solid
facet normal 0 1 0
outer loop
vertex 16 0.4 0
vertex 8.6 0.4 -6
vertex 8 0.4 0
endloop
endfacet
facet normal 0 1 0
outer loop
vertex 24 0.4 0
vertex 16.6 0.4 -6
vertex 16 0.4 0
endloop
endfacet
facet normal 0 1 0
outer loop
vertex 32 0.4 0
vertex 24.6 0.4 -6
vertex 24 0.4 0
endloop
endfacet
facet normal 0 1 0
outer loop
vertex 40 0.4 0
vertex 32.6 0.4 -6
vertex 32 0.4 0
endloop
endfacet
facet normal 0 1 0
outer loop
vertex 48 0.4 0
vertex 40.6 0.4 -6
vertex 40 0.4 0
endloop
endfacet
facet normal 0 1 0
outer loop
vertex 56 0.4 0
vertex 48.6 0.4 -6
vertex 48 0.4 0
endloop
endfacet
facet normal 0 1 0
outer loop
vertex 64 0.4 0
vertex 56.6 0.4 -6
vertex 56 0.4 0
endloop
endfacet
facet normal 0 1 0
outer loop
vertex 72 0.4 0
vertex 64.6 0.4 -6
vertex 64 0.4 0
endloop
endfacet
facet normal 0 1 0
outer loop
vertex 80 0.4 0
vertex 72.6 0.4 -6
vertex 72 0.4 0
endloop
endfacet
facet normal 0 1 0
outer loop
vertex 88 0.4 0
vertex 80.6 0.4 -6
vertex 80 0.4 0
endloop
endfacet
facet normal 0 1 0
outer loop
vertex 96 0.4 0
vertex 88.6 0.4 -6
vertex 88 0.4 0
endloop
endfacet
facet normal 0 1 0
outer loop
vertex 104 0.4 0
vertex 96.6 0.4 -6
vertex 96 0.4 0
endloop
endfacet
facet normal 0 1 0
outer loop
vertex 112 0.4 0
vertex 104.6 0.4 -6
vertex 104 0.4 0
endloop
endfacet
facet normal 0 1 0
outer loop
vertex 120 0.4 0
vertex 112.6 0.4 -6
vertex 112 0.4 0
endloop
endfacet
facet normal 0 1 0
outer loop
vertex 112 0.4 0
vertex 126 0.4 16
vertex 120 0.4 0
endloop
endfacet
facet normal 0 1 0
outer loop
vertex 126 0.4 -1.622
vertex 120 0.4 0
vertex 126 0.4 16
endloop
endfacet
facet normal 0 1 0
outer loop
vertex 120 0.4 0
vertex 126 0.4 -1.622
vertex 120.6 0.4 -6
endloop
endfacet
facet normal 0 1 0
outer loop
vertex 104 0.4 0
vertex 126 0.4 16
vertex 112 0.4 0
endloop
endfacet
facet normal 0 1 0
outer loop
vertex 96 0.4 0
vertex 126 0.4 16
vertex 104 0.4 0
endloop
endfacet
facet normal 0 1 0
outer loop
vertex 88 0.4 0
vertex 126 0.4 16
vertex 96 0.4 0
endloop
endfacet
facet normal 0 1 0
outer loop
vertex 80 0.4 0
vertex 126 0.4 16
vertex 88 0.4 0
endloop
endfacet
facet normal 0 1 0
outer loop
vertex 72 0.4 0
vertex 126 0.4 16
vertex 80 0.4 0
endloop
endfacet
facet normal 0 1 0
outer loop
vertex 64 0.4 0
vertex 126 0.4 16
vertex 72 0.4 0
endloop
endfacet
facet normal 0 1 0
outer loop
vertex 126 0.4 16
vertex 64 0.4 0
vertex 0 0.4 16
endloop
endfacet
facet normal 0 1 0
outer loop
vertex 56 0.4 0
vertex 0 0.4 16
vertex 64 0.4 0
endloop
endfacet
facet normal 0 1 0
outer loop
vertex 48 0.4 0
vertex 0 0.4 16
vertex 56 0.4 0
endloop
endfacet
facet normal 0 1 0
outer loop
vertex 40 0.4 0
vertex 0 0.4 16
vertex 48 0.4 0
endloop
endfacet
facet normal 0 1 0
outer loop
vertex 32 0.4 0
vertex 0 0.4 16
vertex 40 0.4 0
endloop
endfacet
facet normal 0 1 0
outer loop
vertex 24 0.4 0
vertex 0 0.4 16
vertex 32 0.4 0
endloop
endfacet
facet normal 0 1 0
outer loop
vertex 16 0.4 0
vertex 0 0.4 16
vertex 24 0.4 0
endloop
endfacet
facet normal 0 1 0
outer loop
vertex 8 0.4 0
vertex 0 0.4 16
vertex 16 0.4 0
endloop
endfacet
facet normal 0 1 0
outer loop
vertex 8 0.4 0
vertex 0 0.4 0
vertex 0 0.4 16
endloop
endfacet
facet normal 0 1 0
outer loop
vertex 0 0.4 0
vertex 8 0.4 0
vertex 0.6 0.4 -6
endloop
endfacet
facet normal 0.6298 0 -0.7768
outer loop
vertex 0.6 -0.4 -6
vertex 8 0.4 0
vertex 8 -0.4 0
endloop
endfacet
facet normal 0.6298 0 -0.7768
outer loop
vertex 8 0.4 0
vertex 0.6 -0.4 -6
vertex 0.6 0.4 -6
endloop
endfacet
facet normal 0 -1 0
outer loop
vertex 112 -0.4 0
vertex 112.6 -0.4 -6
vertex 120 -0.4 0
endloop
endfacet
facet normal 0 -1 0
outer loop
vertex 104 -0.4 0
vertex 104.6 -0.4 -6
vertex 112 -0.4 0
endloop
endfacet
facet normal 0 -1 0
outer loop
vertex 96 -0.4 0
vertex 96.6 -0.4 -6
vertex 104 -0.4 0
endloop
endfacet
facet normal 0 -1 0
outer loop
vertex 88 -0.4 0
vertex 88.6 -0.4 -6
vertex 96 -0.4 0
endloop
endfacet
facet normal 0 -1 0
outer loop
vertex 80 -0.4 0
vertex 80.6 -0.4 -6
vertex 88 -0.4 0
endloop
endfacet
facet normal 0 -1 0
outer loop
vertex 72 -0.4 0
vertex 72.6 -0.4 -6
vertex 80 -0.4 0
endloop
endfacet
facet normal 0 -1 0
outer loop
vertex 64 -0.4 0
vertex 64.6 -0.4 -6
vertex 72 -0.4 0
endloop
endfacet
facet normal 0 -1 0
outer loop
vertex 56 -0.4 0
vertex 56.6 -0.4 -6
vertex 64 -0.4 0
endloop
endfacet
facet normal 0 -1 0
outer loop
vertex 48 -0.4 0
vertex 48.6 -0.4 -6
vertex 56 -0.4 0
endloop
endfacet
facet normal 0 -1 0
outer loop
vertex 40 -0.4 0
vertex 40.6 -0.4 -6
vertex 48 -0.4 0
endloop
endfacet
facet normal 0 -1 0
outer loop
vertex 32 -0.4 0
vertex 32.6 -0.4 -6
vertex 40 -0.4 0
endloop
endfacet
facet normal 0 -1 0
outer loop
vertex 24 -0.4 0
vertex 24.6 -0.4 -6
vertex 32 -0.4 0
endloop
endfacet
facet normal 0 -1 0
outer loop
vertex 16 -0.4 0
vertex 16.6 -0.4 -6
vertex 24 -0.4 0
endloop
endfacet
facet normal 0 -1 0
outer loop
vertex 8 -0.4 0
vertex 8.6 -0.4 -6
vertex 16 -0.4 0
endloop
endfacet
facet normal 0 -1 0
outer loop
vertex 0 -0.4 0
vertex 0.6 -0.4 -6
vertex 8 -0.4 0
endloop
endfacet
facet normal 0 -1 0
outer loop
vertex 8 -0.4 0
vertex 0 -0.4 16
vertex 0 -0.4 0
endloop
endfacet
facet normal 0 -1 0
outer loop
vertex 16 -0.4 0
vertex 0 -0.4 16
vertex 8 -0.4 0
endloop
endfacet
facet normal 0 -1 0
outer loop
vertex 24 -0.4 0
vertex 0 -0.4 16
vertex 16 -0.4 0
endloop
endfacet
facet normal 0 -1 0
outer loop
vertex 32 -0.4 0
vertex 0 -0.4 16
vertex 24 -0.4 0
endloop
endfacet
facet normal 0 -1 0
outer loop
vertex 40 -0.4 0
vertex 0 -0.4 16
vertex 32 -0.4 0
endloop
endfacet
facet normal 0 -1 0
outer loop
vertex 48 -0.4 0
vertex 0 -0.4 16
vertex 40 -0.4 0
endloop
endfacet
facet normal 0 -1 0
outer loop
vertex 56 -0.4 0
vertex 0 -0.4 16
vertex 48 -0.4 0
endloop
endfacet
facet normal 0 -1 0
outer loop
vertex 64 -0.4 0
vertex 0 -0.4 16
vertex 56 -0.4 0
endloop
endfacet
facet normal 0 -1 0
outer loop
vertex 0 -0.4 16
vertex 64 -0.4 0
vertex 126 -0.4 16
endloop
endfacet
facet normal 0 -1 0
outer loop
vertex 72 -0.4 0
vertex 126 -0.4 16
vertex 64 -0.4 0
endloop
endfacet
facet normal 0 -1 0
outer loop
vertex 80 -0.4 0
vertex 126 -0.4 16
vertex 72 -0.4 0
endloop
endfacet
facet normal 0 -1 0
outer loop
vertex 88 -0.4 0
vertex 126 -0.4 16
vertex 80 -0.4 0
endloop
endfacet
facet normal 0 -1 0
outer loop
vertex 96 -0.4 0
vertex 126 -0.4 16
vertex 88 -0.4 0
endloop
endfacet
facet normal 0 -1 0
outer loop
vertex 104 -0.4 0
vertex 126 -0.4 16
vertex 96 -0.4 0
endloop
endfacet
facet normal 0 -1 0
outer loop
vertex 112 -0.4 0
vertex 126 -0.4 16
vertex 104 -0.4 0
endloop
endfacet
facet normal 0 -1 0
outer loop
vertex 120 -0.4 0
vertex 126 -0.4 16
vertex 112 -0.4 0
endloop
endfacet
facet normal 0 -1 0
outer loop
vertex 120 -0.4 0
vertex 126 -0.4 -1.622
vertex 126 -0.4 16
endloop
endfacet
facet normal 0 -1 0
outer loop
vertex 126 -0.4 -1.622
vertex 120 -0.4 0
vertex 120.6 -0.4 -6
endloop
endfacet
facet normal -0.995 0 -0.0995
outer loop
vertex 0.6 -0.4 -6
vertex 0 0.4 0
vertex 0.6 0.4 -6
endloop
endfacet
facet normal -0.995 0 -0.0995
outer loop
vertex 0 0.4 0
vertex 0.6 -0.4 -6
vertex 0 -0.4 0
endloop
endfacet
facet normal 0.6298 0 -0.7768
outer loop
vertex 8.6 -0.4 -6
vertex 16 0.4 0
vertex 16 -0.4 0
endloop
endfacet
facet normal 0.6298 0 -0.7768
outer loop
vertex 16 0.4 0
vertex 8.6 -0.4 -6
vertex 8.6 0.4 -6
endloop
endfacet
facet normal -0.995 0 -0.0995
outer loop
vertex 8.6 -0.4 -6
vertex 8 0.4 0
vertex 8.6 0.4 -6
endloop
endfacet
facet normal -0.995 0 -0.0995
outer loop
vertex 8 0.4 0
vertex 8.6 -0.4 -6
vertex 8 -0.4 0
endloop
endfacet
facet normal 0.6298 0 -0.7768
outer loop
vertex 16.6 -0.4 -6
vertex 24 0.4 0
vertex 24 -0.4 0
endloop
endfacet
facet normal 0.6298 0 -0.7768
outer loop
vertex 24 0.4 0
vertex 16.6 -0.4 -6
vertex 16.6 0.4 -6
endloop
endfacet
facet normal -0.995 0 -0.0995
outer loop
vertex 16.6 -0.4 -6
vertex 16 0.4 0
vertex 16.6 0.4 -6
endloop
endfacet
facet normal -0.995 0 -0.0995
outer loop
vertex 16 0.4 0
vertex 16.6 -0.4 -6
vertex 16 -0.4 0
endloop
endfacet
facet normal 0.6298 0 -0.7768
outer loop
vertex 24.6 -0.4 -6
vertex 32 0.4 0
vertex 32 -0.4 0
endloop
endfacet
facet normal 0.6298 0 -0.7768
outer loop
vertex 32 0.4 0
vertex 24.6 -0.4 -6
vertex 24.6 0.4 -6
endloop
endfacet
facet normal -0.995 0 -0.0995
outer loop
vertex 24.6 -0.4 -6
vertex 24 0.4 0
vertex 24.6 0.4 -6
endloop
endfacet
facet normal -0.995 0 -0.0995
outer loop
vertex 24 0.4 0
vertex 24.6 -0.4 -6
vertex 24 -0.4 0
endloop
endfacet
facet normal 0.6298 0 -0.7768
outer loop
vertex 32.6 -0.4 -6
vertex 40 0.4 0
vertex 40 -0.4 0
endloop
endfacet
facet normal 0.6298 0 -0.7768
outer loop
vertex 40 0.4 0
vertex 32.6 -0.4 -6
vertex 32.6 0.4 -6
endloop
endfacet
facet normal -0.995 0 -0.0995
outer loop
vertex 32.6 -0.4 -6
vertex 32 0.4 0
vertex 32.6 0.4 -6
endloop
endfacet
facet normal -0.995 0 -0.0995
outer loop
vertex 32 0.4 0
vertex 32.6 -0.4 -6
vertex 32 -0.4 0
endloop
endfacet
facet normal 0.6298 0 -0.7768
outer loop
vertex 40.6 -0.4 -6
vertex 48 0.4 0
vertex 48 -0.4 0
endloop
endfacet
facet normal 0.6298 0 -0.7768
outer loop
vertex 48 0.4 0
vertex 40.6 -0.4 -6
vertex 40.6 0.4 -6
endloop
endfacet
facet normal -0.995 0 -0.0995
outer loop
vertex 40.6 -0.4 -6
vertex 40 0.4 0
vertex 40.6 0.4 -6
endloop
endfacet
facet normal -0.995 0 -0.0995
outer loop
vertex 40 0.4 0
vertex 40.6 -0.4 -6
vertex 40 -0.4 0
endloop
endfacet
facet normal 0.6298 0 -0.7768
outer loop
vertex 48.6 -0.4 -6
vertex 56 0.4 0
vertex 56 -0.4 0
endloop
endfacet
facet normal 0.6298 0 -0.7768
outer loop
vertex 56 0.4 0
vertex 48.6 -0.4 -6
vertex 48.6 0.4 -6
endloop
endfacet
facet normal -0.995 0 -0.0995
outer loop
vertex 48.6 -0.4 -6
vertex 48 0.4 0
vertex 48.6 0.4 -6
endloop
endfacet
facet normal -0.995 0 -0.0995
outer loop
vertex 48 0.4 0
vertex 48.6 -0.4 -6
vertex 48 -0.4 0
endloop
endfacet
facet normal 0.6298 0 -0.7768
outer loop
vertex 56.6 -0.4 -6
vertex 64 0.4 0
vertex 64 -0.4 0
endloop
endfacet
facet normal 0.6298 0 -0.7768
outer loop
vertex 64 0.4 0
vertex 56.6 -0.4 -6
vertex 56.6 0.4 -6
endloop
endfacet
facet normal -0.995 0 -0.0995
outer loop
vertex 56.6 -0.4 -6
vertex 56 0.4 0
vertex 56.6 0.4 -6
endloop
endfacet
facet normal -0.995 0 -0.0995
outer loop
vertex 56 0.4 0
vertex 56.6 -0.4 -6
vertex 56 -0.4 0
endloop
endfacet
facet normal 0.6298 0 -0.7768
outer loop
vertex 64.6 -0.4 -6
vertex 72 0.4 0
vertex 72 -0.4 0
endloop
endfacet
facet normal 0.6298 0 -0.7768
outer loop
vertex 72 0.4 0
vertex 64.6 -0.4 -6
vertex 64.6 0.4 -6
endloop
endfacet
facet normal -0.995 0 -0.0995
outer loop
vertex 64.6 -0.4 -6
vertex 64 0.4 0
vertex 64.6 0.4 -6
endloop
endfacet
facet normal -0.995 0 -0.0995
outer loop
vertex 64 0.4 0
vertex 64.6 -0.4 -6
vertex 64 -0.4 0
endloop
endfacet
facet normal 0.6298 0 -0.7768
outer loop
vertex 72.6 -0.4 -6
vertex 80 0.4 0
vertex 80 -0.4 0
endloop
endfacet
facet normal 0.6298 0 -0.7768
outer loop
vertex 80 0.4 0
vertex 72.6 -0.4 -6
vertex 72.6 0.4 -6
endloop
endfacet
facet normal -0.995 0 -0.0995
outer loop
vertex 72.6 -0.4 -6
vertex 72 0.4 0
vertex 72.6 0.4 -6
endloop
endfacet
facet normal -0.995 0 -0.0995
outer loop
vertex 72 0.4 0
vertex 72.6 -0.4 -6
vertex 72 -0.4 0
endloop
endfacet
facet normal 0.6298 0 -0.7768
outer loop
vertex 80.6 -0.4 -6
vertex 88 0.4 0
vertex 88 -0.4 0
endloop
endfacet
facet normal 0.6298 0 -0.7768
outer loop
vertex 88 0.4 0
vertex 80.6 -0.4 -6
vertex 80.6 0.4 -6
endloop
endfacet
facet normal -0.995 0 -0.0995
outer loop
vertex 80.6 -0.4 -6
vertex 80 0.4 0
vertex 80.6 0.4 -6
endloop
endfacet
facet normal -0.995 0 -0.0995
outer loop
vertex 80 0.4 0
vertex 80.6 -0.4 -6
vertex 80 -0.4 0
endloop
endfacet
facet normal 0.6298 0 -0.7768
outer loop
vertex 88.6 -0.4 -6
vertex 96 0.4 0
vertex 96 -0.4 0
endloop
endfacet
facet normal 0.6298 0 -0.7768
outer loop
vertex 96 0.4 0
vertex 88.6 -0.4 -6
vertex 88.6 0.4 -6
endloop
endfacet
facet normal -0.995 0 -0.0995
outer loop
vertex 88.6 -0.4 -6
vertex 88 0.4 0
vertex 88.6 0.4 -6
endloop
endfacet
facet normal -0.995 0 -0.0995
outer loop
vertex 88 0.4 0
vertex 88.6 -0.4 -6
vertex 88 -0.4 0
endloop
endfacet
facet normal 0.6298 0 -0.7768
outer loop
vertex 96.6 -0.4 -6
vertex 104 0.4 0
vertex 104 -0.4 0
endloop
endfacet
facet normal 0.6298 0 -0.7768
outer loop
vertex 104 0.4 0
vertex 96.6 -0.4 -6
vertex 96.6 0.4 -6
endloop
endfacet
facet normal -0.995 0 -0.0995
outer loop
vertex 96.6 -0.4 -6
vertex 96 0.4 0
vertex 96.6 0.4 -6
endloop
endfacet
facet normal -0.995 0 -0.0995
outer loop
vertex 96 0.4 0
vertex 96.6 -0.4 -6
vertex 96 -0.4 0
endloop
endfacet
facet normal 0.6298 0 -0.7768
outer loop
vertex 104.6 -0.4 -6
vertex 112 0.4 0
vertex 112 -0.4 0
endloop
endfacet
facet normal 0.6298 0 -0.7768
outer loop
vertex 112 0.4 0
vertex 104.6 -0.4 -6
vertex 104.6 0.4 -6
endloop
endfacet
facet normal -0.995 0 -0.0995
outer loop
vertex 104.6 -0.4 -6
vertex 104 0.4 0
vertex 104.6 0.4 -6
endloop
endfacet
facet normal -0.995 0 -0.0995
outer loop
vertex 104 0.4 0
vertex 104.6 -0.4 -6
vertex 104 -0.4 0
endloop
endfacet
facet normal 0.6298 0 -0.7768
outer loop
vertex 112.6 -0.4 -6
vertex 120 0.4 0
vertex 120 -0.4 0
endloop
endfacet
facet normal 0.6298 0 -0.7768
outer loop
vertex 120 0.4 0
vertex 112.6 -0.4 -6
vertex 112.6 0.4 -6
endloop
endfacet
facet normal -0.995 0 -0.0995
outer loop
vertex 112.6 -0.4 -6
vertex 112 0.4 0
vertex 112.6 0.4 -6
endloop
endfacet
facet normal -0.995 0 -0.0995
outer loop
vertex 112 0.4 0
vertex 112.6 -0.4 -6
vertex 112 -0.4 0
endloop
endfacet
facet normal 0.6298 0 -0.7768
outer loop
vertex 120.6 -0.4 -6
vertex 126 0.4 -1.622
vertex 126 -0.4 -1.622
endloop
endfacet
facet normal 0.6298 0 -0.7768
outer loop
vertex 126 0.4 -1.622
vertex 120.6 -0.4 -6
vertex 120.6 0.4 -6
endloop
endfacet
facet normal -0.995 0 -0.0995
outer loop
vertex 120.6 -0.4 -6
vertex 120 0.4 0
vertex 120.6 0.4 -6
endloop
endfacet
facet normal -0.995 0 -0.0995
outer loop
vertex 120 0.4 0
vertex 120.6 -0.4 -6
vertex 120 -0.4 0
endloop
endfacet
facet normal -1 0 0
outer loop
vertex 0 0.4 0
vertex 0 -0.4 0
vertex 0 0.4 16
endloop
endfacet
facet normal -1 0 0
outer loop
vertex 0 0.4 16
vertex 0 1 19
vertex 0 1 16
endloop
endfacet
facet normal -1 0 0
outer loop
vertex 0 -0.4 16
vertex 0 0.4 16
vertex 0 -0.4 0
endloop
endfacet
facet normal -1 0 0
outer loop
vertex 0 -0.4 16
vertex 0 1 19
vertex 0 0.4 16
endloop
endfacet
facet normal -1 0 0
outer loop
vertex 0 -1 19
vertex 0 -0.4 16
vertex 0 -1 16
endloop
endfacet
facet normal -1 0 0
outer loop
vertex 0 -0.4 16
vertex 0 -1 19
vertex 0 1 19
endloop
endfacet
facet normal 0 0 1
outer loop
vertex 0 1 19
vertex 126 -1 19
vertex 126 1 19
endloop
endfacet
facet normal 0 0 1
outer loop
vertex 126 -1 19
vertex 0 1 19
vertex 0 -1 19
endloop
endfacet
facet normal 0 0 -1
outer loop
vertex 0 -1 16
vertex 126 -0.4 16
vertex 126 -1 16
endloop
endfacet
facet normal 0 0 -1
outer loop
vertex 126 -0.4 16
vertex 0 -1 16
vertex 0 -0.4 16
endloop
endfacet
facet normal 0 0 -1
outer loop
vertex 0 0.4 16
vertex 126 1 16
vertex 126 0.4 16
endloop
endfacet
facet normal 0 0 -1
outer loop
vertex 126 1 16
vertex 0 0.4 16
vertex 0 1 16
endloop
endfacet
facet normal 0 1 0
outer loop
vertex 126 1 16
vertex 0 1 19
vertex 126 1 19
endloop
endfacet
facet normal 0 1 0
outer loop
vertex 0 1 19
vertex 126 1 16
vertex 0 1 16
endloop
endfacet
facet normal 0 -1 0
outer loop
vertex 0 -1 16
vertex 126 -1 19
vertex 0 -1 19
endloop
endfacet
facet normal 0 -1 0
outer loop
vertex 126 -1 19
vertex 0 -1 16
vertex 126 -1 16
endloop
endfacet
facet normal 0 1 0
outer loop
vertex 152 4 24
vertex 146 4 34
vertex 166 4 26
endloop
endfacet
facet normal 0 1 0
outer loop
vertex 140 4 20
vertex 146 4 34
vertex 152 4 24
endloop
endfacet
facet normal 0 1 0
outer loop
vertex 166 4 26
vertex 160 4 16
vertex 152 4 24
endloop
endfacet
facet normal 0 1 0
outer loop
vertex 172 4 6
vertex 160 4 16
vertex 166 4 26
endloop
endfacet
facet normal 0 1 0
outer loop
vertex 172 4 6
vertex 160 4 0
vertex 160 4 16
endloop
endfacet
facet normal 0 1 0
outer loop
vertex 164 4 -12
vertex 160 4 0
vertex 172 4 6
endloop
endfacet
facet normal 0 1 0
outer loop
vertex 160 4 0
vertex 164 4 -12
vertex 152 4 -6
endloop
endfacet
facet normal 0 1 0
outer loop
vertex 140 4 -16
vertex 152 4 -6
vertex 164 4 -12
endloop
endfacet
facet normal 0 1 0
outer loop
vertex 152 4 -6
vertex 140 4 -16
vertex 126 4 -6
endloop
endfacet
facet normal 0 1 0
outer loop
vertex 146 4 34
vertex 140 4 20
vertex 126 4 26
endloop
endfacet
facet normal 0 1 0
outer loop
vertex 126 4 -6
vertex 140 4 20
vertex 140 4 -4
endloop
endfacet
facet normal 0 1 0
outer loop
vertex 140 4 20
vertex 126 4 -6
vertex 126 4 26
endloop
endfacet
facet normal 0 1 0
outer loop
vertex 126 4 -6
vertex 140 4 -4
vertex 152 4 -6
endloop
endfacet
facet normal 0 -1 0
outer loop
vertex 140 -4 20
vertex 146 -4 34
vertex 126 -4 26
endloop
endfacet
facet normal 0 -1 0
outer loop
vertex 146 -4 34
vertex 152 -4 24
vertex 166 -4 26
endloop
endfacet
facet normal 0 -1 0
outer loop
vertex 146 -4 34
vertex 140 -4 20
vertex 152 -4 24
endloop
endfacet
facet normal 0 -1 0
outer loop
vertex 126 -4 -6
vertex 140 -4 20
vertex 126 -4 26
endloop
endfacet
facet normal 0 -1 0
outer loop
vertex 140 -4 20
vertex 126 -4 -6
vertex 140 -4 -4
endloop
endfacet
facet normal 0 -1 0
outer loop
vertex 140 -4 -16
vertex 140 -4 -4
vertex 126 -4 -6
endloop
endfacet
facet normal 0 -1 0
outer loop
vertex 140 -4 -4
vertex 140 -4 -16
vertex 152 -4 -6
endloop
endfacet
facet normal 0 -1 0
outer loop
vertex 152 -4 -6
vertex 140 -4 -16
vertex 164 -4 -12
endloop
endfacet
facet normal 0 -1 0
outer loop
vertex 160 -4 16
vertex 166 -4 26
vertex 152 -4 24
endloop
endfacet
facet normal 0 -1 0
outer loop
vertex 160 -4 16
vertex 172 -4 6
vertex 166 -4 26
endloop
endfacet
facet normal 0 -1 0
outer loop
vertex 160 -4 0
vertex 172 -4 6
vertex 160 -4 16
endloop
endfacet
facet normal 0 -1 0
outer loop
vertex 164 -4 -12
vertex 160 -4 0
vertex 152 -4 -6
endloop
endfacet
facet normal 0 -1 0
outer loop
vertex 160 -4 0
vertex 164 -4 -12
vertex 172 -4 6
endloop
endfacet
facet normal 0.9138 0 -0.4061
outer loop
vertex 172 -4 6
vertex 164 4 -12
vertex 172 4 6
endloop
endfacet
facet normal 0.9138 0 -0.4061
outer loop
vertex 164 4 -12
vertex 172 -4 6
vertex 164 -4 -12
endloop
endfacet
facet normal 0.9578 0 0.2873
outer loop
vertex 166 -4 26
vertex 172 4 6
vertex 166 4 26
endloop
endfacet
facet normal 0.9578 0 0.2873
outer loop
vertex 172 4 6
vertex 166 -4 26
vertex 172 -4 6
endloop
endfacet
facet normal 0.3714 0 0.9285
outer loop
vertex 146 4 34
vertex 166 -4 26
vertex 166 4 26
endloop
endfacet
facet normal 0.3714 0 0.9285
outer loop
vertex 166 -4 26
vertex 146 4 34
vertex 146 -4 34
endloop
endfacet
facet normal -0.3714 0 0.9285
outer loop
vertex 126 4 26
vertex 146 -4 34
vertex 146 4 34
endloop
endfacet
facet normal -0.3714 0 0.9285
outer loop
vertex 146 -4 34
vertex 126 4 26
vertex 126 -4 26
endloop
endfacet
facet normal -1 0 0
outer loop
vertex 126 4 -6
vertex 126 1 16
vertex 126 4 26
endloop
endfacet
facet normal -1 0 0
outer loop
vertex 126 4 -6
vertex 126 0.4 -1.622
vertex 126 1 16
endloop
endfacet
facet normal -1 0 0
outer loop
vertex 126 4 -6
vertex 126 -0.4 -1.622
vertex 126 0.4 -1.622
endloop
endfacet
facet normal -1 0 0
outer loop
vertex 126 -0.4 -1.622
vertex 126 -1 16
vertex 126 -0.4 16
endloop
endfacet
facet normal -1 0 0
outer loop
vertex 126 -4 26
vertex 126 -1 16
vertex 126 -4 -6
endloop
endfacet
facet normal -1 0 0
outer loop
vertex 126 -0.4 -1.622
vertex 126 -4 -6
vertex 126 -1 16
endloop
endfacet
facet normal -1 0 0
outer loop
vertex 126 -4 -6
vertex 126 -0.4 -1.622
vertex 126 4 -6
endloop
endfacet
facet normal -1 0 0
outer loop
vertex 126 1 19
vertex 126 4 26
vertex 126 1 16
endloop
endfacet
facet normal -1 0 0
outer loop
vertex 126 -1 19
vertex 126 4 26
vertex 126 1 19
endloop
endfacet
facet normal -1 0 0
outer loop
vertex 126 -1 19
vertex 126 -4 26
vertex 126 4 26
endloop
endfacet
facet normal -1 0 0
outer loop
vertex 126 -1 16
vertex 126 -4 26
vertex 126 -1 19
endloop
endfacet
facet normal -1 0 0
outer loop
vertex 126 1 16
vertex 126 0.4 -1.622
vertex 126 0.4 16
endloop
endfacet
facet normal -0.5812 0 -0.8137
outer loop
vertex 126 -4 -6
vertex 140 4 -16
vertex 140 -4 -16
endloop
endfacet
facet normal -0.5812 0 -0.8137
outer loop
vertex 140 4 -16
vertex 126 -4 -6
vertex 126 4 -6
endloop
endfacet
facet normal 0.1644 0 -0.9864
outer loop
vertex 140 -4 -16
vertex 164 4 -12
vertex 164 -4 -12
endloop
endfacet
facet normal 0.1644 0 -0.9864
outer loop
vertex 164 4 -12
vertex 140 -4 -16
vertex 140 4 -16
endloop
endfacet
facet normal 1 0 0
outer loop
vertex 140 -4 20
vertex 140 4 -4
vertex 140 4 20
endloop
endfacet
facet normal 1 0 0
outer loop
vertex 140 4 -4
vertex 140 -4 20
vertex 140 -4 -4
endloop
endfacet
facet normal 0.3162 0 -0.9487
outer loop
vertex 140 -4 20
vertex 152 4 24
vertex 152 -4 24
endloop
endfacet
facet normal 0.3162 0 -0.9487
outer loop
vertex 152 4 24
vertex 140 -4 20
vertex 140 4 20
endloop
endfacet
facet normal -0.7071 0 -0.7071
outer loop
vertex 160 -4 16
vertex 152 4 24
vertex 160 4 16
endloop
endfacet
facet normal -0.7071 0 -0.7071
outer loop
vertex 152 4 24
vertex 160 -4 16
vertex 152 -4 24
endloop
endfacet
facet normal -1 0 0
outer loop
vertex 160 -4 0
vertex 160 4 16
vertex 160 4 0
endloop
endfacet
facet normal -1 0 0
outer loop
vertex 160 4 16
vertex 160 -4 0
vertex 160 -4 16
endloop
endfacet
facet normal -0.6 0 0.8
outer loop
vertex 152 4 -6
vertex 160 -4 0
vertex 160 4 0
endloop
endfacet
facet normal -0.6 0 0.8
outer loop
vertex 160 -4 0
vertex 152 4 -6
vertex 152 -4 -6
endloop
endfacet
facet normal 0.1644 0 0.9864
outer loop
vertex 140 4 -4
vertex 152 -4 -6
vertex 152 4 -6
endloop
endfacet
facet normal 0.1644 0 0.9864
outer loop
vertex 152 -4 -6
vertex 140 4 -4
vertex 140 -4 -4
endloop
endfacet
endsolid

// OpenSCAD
// file: _common.scad
// mechanism 共用設定 + 齒輪 module
$fn = 60;

// 簡化齒輪：N 個齒、節圓半徑 r、齒高 h、齒寬 w
module simple_gear(N = 16, r = 20, h = 4, thick = 6) {
  union() {
    // 主圓盤
    cylinder(h = thick, r = r, center = true);
    // 齒（梯形）
    for (i = [0:N-1]) {
      rotate([0, 0, i * 360 / N])
        translate([r, 0, 0])
          linear_extrude(height = thick, center = true)
            polygon([[0, -2.4], [h, -1.4], [h, 1.4], [0, 2.4]]);
    }
    // 中心凸軸
    cylinder(h = thick * 1.4, r = r * 0.18, center = true);
  }
}
// main file
// 手鋸 Saw — 木柄 + 鋸條（帶齒）
include <_common.scad>

// 鋸條（薄長方體）
color([0.7, 0.7, 0.72])
  translate([0, -0.4, 0]) cube([130, 0.8, 18]);

// 鋸齒（沿底邊一排，與鋸條同平面、尖端朝下）
// 2026-10 修正：原本對稱三角形看不出切削方向。D 形握把的西式夾背鋸是推切：
// 齒的切削面（陡邊）朝鋸尖（-X，遠離握把），緩坡朝握把，推的時候齒尖吃進木材。
color([0.55, 0.55, 0.55])
  for (i = [0:15])
    translate([i * 8 + 4, 0.4, 0])
      rotate([90, 0, 0])
        linear_extrude(height = 0.8) polygon([[-4, 0], [-3.4, -6], [4, 0]]);   // 齒放大成示意尺寸，等角圖上才看得出方向

// 鋸條與握把連接 backbone（鋼條加固）
color([0.30, 0.30, 0.30])
  translate([0, -1, 16]) cube([130, 2, 3]);

// D 形木柄（2026-10 修正：原本是圓環，改成手握的 D 形把手）
color([0.55, 0.27, 0.13])
  translate([0, 4, 0]) rotate([90, 0, 0])
    linear_extrude(height = 8)
      difference() {
        polygon([[126, -6], [126, 26], [146, 34], [166, 26], [172, 6], [164, -12], [140, -16]]);
        polygon([[140, -4], [140, 20], [152, 24], [160, 16], [160, 0], [152, -6]]);
      }
